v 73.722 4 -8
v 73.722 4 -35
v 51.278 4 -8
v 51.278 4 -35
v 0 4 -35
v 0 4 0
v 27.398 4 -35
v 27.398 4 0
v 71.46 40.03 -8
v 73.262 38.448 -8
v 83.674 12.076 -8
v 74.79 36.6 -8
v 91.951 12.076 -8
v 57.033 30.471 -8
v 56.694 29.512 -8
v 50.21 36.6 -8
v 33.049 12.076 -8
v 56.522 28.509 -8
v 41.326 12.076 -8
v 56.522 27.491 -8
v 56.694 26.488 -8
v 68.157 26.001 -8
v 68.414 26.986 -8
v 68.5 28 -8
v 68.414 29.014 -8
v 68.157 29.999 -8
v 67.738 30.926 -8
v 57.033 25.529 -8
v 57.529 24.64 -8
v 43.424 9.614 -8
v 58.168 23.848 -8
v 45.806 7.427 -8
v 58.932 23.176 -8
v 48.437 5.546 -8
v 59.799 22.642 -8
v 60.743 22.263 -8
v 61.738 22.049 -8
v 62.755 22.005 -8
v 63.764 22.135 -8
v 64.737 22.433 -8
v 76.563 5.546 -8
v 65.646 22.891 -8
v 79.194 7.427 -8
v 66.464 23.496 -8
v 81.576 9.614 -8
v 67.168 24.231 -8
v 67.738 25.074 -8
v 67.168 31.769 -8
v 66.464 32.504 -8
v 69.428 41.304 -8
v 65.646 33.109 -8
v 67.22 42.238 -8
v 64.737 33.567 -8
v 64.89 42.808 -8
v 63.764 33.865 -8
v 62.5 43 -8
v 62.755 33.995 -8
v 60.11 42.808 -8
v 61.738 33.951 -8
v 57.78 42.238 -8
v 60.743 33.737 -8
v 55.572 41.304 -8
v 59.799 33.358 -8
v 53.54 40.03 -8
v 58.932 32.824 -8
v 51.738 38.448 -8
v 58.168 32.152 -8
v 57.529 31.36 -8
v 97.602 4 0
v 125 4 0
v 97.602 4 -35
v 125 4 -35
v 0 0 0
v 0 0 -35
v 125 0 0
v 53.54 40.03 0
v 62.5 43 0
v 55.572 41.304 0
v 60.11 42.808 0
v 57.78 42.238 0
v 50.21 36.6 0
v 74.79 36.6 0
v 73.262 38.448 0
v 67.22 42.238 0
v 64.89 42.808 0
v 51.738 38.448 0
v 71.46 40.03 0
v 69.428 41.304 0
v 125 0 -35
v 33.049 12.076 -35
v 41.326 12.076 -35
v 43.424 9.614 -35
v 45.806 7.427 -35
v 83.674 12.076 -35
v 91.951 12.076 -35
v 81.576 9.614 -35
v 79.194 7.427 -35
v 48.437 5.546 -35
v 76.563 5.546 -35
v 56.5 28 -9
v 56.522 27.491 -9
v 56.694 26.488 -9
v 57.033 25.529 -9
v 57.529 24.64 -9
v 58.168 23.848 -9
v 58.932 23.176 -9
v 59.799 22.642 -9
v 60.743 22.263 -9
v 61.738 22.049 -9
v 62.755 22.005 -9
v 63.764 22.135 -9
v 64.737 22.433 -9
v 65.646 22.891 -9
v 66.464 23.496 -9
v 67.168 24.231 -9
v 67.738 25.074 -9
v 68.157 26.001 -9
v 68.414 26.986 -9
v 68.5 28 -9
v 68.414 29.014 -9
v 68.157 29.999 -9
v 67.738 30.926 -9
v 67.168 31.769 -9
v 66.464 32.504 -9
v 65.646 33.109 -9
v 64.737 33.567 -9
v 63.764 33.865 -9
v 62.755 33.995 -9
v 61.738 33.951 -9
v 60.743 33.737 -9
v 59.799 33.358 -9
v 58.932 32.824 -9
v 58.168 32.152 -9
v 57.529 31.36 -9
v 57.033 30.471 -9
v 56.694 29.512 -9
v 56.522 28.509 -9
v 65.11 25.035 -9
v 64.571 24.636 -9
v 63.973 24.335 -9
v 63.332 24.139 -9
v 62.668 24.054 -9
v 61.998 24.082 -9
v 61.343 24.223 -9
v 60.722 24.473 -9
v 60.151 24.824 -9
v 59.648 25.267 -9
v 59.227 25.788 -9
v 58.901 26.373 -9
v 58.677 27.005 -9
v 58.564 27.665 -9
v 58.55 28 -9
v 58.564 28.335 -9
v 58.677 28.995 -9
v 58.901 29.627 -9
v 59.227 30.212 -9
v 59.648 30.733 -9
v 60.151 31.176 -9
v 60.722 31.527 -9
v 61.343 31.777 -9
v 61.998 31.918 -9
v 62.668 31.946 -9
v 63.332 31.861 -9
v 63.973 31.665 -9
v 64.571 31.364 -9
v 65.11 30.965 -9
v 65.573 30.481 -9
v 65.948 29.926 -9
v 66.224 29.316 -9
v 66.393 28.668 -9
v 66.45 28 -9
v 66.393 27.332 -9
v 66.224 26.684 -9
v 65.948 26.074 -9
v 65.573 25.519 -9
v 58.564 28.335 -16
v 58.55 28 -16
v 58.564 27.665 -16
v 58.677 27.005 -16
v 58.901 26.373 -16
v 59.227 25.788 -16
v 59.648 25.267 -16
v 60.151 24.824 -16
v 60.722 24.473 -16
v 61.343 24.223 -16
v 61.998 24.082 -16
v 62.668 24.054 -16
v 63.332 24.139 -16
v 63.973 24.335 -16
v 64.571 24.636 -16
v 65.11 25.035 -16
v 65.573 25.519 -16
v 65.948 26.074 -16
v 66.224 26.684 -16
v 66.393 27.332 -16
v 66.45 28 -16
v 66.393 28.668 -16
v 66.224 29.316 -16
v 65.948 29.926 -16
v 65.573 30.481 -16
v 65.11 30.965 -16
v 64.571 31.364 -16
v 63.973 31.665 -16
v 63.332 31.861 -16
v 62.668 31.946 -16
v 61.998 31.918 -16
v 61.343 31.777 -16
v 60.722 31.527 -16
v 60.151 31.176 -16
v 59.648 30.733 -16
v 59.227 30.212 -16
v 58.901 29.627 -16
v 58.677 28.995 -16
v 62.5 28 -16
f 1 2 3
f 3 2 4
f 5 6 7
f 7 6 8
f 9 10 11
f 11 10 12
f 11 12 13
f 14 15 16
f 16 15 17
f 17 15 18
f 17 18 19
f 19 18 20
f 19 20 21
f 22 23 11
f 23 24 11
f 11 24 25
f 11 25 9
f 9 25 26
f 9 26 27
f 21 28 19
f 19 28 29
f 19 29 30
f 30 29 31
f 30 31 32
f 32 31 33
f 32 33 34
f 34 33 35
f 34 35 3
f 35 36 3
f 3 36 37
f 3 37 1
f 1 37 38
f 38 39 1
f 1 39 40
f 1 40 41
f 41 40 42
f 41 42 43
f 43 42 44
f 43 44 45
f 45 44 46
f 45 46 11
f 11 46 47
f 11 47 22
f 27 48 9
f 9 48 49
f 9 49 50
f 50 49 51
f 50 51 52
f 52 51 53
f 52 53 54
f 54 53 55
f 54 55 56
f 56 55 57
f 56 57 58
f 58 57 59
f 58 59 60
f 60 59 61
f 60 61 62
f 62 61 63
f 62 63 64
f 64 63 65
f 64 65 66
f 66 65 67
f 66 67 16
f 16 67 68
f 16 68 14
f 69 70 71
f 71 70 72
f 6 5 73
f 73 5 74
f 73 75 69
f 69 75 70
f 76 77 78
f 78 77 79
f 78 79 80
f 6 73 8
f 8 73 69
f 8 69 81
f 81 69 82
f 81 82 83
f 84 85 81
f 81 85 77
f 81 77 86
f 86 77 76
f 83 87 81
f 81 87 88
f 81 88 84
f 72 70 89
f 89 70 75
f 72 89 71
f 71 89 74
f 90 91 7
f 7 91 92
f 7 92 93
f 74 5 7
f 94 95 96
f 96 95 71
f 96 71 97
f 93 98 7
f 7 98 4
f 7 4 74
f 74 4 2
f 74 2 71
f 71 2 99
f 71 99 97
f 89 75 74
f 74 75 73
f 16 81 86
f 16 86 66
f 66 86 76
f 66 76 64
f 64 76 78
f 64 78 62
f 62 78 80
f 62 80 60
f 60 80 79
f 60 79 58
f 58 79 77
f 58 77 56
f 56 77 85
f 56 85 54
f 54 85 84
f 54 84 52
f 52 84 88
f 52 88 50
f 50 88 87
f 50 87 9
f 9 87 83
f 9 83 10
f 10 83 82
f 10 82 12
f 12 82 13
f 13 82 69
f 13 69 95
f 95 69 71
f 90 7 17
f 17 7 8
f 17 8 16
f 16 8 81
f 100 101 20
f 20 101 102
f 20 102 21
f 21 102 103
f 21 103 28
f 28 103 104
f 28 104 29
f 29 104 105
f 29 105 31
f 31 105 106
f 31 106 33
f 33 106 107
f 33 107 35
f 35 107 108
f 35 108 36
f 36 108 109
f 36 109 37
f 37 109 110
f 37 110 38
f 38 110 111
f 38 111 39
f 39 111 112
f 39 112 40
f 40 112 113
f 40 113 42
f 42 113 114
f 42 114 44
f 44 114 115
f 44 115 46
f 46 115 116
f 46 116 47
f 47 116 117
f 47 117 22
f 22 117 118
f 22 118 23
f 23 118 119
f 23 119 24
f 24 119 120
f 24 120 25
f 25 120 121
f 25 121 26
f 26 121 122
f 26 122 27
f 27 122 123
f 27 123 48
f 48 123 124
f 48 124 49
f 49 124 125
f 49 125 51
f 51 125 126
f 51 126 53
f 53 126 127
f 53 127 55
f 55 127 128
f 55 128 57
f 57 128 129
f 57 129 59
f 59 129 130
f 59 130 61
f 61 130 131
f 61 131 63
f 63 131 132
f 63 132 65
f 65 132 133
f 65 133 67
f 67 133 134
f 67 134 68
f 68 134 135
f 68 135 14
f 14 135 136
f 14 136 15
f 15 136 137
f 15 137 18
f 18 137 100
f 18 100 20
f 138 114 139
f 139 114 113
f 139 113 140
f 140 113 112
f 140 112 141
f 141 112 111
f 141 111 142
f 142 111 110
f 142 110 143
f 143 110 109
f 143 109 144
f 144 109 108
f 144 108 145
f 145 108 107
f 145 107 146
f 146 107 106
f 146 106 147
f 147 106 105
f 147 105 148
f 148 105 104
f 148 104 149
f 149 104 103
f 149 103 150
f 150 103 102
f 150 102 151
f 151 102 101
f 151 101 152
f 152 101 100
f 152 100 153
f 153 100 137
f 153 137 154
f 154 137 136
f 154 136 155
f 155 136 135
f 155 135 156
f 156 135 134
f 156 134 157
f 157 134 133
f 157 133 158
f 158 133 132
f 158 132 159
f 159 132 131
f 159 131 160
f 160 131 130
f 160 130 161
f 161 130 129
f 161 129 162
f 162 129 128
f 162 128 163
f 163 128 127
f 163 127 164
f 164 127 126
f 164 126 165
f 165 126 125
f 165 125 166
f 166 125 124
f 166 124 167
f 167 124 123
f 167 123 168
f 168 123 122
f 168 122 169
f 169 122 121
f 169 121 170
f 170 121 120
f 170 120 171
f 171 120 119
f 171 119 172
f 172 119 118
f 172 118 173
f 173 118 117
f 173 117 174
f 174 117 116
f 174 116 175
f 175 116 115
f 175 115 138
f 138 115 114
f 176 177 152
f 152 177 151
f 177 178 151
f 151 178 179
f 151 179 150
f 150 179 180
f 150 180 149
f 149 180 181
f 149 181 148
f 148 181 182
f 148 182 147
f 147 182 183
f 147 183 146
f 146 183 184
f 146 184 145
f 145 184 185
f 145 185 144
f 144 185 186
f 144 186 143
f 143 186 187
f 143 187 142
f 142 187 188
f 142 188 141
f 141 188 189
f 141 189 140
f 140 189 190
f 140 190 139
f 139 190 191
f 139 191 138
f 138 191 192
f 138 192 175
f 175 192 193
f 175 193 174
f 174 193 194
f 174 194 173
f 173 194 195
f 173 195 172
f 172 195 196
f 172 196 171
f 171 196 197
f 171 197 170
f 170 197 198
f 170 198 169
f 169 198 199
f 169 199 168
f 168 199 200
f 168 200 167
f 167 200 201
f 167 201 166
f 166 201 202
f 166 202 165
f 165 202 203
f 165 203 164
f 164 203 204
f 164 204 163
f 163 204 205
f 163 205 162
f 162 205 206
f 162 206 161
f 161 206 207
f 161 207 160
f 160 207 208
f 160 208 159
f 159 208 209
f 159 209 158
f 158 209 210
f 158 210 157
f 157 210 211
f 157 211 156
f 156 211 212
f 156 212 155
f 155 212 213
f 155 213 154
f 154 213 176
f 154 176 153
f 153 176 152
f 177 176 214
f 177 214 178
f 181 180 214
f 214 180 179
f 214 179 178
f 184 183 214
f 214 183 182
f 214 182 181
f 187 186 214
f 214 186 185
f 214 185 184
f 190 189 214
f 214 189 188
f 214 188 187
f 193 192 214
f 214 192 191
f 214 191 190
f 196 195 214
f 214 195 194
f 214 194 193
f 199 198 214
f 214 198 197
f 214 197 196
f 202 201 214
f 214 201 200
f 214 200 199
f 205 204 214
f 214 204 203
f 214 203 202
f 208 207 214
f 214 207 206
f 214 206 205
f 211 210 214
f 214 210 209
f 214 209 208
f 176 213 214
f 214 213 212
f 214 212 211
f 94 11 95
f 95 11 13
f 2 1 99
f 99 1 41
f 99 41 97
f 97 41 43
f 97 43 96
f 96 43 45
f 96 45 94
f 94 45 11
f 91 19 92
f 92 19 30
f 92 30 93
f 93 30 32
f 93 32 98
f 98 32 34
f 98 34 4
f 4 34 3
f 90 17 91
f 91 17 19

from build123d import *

# Parameters (mm, degrees)
SKETCH1_W           = 125
SKETCH1_H           = 35
BOSS_EXTRUDE1_DEPTH = 4
BOSS_EXTRUDE2_DEPTH = 8
SKETCH4_R           = 6
BOSS_EXTRUDE3_DEPTH = 1
SKETCH5_R           = 3.95
BOSS_EXTRUDE4_DEPTH = 7
BOSS_EXTRUDE5_DEPTH = 27


with BuildPart() as part:
    # Sketch1 → Boss-Extrude1 (new body)
    with BuildSketch(Plane(origin=(0, 0, 0), x_dir=(1, 0, 0), z_dir=(0, 1, 0))):
        with Locations((62.5, 17.5)):
            Rectangle(SKETCH1_W, SKETCH1_H)
    extrude(amount=BOSS_EXTRUDE1_DEPTH)

    # Sketch3 → Boss-Extrude2 (add)
    with BuildSketch(Plane.XY):
        with BuildLine():
            Line((50.210098614, 36.599902553), (27.398199936, 4))
            Line((27.398199936, 4), (97.601800064, 4))
            Line((97.601800064, 4), (74.789901386, 36.599902553))
            ThreePointArc((74.789901386, 36.599902553), (62.5, 43), (50.210098614, 36.599902553))
        make_face()
    extrude(amount=-BOSS_EXTRUDE2_DEPTH)

    # Sketch4 → Boss-Extrude3 (add)
    with BuildSketch(Plane(origin=(0, 0, -8), x_dir=(-1, 0, 0), z_dir=(0, 0, -1))):
        with Locations(Location((-62.5, 28, 0), (0, 0, 180))):
            Circle(SKETCH4_R)
    extrude(amount=BOSS_EXTRUDE3_DEPTH)

    # Sketch5 → Boss-Extrude4 (add)
    with BuildSketch(Plane(origin=(0, 0, -9), x_dir=(-1, 0, 0), z_dir=(0, 0, -1))):
        with Locations((-62.5, 28)):
            Circle(SKETCH5_R)
    extrude(amount=BOSS_EXTRUDE4_DEPTH)

    # Sketch8 → Boss-Extrude5 (add)
    with BuildSketch(Plane(origin=(0, 0, -8), x_dir=(-1, 0, 0), z_dir=(0, 0, -1))):
        with BuildLine():
            Line((-51.277701451, 4), (-27.398199936, 4))
            Line((-27.398199936, 4), (-33.049223109, 12.07573308))
            Line((-33.049223109, 12.07573308), (-41.325541145, 12.07573308))
            ThreePointArc((-41.325541145, 12.07573308), (-45.805934025, 7.427004448), (-51.277701451, 4))
        make_face()
        with BuildLine():
            Line((-91.950776891, 12.07573308), (-83.674458855, 12.07573308))
            ThreePointArc((-83.674458855, 12.07573308), (-79.194065975, 7.427004448), (-73.722298549, 4))
            Line((-73.722298549, 4), (-97.601800064, 4))
            Line((-97.601800064, 4), (-91.950776891, 12.07573308))
        make_face()
    extrude(amount=BOSS_EXTRUDE5_DEPTH)


solid = part.part
